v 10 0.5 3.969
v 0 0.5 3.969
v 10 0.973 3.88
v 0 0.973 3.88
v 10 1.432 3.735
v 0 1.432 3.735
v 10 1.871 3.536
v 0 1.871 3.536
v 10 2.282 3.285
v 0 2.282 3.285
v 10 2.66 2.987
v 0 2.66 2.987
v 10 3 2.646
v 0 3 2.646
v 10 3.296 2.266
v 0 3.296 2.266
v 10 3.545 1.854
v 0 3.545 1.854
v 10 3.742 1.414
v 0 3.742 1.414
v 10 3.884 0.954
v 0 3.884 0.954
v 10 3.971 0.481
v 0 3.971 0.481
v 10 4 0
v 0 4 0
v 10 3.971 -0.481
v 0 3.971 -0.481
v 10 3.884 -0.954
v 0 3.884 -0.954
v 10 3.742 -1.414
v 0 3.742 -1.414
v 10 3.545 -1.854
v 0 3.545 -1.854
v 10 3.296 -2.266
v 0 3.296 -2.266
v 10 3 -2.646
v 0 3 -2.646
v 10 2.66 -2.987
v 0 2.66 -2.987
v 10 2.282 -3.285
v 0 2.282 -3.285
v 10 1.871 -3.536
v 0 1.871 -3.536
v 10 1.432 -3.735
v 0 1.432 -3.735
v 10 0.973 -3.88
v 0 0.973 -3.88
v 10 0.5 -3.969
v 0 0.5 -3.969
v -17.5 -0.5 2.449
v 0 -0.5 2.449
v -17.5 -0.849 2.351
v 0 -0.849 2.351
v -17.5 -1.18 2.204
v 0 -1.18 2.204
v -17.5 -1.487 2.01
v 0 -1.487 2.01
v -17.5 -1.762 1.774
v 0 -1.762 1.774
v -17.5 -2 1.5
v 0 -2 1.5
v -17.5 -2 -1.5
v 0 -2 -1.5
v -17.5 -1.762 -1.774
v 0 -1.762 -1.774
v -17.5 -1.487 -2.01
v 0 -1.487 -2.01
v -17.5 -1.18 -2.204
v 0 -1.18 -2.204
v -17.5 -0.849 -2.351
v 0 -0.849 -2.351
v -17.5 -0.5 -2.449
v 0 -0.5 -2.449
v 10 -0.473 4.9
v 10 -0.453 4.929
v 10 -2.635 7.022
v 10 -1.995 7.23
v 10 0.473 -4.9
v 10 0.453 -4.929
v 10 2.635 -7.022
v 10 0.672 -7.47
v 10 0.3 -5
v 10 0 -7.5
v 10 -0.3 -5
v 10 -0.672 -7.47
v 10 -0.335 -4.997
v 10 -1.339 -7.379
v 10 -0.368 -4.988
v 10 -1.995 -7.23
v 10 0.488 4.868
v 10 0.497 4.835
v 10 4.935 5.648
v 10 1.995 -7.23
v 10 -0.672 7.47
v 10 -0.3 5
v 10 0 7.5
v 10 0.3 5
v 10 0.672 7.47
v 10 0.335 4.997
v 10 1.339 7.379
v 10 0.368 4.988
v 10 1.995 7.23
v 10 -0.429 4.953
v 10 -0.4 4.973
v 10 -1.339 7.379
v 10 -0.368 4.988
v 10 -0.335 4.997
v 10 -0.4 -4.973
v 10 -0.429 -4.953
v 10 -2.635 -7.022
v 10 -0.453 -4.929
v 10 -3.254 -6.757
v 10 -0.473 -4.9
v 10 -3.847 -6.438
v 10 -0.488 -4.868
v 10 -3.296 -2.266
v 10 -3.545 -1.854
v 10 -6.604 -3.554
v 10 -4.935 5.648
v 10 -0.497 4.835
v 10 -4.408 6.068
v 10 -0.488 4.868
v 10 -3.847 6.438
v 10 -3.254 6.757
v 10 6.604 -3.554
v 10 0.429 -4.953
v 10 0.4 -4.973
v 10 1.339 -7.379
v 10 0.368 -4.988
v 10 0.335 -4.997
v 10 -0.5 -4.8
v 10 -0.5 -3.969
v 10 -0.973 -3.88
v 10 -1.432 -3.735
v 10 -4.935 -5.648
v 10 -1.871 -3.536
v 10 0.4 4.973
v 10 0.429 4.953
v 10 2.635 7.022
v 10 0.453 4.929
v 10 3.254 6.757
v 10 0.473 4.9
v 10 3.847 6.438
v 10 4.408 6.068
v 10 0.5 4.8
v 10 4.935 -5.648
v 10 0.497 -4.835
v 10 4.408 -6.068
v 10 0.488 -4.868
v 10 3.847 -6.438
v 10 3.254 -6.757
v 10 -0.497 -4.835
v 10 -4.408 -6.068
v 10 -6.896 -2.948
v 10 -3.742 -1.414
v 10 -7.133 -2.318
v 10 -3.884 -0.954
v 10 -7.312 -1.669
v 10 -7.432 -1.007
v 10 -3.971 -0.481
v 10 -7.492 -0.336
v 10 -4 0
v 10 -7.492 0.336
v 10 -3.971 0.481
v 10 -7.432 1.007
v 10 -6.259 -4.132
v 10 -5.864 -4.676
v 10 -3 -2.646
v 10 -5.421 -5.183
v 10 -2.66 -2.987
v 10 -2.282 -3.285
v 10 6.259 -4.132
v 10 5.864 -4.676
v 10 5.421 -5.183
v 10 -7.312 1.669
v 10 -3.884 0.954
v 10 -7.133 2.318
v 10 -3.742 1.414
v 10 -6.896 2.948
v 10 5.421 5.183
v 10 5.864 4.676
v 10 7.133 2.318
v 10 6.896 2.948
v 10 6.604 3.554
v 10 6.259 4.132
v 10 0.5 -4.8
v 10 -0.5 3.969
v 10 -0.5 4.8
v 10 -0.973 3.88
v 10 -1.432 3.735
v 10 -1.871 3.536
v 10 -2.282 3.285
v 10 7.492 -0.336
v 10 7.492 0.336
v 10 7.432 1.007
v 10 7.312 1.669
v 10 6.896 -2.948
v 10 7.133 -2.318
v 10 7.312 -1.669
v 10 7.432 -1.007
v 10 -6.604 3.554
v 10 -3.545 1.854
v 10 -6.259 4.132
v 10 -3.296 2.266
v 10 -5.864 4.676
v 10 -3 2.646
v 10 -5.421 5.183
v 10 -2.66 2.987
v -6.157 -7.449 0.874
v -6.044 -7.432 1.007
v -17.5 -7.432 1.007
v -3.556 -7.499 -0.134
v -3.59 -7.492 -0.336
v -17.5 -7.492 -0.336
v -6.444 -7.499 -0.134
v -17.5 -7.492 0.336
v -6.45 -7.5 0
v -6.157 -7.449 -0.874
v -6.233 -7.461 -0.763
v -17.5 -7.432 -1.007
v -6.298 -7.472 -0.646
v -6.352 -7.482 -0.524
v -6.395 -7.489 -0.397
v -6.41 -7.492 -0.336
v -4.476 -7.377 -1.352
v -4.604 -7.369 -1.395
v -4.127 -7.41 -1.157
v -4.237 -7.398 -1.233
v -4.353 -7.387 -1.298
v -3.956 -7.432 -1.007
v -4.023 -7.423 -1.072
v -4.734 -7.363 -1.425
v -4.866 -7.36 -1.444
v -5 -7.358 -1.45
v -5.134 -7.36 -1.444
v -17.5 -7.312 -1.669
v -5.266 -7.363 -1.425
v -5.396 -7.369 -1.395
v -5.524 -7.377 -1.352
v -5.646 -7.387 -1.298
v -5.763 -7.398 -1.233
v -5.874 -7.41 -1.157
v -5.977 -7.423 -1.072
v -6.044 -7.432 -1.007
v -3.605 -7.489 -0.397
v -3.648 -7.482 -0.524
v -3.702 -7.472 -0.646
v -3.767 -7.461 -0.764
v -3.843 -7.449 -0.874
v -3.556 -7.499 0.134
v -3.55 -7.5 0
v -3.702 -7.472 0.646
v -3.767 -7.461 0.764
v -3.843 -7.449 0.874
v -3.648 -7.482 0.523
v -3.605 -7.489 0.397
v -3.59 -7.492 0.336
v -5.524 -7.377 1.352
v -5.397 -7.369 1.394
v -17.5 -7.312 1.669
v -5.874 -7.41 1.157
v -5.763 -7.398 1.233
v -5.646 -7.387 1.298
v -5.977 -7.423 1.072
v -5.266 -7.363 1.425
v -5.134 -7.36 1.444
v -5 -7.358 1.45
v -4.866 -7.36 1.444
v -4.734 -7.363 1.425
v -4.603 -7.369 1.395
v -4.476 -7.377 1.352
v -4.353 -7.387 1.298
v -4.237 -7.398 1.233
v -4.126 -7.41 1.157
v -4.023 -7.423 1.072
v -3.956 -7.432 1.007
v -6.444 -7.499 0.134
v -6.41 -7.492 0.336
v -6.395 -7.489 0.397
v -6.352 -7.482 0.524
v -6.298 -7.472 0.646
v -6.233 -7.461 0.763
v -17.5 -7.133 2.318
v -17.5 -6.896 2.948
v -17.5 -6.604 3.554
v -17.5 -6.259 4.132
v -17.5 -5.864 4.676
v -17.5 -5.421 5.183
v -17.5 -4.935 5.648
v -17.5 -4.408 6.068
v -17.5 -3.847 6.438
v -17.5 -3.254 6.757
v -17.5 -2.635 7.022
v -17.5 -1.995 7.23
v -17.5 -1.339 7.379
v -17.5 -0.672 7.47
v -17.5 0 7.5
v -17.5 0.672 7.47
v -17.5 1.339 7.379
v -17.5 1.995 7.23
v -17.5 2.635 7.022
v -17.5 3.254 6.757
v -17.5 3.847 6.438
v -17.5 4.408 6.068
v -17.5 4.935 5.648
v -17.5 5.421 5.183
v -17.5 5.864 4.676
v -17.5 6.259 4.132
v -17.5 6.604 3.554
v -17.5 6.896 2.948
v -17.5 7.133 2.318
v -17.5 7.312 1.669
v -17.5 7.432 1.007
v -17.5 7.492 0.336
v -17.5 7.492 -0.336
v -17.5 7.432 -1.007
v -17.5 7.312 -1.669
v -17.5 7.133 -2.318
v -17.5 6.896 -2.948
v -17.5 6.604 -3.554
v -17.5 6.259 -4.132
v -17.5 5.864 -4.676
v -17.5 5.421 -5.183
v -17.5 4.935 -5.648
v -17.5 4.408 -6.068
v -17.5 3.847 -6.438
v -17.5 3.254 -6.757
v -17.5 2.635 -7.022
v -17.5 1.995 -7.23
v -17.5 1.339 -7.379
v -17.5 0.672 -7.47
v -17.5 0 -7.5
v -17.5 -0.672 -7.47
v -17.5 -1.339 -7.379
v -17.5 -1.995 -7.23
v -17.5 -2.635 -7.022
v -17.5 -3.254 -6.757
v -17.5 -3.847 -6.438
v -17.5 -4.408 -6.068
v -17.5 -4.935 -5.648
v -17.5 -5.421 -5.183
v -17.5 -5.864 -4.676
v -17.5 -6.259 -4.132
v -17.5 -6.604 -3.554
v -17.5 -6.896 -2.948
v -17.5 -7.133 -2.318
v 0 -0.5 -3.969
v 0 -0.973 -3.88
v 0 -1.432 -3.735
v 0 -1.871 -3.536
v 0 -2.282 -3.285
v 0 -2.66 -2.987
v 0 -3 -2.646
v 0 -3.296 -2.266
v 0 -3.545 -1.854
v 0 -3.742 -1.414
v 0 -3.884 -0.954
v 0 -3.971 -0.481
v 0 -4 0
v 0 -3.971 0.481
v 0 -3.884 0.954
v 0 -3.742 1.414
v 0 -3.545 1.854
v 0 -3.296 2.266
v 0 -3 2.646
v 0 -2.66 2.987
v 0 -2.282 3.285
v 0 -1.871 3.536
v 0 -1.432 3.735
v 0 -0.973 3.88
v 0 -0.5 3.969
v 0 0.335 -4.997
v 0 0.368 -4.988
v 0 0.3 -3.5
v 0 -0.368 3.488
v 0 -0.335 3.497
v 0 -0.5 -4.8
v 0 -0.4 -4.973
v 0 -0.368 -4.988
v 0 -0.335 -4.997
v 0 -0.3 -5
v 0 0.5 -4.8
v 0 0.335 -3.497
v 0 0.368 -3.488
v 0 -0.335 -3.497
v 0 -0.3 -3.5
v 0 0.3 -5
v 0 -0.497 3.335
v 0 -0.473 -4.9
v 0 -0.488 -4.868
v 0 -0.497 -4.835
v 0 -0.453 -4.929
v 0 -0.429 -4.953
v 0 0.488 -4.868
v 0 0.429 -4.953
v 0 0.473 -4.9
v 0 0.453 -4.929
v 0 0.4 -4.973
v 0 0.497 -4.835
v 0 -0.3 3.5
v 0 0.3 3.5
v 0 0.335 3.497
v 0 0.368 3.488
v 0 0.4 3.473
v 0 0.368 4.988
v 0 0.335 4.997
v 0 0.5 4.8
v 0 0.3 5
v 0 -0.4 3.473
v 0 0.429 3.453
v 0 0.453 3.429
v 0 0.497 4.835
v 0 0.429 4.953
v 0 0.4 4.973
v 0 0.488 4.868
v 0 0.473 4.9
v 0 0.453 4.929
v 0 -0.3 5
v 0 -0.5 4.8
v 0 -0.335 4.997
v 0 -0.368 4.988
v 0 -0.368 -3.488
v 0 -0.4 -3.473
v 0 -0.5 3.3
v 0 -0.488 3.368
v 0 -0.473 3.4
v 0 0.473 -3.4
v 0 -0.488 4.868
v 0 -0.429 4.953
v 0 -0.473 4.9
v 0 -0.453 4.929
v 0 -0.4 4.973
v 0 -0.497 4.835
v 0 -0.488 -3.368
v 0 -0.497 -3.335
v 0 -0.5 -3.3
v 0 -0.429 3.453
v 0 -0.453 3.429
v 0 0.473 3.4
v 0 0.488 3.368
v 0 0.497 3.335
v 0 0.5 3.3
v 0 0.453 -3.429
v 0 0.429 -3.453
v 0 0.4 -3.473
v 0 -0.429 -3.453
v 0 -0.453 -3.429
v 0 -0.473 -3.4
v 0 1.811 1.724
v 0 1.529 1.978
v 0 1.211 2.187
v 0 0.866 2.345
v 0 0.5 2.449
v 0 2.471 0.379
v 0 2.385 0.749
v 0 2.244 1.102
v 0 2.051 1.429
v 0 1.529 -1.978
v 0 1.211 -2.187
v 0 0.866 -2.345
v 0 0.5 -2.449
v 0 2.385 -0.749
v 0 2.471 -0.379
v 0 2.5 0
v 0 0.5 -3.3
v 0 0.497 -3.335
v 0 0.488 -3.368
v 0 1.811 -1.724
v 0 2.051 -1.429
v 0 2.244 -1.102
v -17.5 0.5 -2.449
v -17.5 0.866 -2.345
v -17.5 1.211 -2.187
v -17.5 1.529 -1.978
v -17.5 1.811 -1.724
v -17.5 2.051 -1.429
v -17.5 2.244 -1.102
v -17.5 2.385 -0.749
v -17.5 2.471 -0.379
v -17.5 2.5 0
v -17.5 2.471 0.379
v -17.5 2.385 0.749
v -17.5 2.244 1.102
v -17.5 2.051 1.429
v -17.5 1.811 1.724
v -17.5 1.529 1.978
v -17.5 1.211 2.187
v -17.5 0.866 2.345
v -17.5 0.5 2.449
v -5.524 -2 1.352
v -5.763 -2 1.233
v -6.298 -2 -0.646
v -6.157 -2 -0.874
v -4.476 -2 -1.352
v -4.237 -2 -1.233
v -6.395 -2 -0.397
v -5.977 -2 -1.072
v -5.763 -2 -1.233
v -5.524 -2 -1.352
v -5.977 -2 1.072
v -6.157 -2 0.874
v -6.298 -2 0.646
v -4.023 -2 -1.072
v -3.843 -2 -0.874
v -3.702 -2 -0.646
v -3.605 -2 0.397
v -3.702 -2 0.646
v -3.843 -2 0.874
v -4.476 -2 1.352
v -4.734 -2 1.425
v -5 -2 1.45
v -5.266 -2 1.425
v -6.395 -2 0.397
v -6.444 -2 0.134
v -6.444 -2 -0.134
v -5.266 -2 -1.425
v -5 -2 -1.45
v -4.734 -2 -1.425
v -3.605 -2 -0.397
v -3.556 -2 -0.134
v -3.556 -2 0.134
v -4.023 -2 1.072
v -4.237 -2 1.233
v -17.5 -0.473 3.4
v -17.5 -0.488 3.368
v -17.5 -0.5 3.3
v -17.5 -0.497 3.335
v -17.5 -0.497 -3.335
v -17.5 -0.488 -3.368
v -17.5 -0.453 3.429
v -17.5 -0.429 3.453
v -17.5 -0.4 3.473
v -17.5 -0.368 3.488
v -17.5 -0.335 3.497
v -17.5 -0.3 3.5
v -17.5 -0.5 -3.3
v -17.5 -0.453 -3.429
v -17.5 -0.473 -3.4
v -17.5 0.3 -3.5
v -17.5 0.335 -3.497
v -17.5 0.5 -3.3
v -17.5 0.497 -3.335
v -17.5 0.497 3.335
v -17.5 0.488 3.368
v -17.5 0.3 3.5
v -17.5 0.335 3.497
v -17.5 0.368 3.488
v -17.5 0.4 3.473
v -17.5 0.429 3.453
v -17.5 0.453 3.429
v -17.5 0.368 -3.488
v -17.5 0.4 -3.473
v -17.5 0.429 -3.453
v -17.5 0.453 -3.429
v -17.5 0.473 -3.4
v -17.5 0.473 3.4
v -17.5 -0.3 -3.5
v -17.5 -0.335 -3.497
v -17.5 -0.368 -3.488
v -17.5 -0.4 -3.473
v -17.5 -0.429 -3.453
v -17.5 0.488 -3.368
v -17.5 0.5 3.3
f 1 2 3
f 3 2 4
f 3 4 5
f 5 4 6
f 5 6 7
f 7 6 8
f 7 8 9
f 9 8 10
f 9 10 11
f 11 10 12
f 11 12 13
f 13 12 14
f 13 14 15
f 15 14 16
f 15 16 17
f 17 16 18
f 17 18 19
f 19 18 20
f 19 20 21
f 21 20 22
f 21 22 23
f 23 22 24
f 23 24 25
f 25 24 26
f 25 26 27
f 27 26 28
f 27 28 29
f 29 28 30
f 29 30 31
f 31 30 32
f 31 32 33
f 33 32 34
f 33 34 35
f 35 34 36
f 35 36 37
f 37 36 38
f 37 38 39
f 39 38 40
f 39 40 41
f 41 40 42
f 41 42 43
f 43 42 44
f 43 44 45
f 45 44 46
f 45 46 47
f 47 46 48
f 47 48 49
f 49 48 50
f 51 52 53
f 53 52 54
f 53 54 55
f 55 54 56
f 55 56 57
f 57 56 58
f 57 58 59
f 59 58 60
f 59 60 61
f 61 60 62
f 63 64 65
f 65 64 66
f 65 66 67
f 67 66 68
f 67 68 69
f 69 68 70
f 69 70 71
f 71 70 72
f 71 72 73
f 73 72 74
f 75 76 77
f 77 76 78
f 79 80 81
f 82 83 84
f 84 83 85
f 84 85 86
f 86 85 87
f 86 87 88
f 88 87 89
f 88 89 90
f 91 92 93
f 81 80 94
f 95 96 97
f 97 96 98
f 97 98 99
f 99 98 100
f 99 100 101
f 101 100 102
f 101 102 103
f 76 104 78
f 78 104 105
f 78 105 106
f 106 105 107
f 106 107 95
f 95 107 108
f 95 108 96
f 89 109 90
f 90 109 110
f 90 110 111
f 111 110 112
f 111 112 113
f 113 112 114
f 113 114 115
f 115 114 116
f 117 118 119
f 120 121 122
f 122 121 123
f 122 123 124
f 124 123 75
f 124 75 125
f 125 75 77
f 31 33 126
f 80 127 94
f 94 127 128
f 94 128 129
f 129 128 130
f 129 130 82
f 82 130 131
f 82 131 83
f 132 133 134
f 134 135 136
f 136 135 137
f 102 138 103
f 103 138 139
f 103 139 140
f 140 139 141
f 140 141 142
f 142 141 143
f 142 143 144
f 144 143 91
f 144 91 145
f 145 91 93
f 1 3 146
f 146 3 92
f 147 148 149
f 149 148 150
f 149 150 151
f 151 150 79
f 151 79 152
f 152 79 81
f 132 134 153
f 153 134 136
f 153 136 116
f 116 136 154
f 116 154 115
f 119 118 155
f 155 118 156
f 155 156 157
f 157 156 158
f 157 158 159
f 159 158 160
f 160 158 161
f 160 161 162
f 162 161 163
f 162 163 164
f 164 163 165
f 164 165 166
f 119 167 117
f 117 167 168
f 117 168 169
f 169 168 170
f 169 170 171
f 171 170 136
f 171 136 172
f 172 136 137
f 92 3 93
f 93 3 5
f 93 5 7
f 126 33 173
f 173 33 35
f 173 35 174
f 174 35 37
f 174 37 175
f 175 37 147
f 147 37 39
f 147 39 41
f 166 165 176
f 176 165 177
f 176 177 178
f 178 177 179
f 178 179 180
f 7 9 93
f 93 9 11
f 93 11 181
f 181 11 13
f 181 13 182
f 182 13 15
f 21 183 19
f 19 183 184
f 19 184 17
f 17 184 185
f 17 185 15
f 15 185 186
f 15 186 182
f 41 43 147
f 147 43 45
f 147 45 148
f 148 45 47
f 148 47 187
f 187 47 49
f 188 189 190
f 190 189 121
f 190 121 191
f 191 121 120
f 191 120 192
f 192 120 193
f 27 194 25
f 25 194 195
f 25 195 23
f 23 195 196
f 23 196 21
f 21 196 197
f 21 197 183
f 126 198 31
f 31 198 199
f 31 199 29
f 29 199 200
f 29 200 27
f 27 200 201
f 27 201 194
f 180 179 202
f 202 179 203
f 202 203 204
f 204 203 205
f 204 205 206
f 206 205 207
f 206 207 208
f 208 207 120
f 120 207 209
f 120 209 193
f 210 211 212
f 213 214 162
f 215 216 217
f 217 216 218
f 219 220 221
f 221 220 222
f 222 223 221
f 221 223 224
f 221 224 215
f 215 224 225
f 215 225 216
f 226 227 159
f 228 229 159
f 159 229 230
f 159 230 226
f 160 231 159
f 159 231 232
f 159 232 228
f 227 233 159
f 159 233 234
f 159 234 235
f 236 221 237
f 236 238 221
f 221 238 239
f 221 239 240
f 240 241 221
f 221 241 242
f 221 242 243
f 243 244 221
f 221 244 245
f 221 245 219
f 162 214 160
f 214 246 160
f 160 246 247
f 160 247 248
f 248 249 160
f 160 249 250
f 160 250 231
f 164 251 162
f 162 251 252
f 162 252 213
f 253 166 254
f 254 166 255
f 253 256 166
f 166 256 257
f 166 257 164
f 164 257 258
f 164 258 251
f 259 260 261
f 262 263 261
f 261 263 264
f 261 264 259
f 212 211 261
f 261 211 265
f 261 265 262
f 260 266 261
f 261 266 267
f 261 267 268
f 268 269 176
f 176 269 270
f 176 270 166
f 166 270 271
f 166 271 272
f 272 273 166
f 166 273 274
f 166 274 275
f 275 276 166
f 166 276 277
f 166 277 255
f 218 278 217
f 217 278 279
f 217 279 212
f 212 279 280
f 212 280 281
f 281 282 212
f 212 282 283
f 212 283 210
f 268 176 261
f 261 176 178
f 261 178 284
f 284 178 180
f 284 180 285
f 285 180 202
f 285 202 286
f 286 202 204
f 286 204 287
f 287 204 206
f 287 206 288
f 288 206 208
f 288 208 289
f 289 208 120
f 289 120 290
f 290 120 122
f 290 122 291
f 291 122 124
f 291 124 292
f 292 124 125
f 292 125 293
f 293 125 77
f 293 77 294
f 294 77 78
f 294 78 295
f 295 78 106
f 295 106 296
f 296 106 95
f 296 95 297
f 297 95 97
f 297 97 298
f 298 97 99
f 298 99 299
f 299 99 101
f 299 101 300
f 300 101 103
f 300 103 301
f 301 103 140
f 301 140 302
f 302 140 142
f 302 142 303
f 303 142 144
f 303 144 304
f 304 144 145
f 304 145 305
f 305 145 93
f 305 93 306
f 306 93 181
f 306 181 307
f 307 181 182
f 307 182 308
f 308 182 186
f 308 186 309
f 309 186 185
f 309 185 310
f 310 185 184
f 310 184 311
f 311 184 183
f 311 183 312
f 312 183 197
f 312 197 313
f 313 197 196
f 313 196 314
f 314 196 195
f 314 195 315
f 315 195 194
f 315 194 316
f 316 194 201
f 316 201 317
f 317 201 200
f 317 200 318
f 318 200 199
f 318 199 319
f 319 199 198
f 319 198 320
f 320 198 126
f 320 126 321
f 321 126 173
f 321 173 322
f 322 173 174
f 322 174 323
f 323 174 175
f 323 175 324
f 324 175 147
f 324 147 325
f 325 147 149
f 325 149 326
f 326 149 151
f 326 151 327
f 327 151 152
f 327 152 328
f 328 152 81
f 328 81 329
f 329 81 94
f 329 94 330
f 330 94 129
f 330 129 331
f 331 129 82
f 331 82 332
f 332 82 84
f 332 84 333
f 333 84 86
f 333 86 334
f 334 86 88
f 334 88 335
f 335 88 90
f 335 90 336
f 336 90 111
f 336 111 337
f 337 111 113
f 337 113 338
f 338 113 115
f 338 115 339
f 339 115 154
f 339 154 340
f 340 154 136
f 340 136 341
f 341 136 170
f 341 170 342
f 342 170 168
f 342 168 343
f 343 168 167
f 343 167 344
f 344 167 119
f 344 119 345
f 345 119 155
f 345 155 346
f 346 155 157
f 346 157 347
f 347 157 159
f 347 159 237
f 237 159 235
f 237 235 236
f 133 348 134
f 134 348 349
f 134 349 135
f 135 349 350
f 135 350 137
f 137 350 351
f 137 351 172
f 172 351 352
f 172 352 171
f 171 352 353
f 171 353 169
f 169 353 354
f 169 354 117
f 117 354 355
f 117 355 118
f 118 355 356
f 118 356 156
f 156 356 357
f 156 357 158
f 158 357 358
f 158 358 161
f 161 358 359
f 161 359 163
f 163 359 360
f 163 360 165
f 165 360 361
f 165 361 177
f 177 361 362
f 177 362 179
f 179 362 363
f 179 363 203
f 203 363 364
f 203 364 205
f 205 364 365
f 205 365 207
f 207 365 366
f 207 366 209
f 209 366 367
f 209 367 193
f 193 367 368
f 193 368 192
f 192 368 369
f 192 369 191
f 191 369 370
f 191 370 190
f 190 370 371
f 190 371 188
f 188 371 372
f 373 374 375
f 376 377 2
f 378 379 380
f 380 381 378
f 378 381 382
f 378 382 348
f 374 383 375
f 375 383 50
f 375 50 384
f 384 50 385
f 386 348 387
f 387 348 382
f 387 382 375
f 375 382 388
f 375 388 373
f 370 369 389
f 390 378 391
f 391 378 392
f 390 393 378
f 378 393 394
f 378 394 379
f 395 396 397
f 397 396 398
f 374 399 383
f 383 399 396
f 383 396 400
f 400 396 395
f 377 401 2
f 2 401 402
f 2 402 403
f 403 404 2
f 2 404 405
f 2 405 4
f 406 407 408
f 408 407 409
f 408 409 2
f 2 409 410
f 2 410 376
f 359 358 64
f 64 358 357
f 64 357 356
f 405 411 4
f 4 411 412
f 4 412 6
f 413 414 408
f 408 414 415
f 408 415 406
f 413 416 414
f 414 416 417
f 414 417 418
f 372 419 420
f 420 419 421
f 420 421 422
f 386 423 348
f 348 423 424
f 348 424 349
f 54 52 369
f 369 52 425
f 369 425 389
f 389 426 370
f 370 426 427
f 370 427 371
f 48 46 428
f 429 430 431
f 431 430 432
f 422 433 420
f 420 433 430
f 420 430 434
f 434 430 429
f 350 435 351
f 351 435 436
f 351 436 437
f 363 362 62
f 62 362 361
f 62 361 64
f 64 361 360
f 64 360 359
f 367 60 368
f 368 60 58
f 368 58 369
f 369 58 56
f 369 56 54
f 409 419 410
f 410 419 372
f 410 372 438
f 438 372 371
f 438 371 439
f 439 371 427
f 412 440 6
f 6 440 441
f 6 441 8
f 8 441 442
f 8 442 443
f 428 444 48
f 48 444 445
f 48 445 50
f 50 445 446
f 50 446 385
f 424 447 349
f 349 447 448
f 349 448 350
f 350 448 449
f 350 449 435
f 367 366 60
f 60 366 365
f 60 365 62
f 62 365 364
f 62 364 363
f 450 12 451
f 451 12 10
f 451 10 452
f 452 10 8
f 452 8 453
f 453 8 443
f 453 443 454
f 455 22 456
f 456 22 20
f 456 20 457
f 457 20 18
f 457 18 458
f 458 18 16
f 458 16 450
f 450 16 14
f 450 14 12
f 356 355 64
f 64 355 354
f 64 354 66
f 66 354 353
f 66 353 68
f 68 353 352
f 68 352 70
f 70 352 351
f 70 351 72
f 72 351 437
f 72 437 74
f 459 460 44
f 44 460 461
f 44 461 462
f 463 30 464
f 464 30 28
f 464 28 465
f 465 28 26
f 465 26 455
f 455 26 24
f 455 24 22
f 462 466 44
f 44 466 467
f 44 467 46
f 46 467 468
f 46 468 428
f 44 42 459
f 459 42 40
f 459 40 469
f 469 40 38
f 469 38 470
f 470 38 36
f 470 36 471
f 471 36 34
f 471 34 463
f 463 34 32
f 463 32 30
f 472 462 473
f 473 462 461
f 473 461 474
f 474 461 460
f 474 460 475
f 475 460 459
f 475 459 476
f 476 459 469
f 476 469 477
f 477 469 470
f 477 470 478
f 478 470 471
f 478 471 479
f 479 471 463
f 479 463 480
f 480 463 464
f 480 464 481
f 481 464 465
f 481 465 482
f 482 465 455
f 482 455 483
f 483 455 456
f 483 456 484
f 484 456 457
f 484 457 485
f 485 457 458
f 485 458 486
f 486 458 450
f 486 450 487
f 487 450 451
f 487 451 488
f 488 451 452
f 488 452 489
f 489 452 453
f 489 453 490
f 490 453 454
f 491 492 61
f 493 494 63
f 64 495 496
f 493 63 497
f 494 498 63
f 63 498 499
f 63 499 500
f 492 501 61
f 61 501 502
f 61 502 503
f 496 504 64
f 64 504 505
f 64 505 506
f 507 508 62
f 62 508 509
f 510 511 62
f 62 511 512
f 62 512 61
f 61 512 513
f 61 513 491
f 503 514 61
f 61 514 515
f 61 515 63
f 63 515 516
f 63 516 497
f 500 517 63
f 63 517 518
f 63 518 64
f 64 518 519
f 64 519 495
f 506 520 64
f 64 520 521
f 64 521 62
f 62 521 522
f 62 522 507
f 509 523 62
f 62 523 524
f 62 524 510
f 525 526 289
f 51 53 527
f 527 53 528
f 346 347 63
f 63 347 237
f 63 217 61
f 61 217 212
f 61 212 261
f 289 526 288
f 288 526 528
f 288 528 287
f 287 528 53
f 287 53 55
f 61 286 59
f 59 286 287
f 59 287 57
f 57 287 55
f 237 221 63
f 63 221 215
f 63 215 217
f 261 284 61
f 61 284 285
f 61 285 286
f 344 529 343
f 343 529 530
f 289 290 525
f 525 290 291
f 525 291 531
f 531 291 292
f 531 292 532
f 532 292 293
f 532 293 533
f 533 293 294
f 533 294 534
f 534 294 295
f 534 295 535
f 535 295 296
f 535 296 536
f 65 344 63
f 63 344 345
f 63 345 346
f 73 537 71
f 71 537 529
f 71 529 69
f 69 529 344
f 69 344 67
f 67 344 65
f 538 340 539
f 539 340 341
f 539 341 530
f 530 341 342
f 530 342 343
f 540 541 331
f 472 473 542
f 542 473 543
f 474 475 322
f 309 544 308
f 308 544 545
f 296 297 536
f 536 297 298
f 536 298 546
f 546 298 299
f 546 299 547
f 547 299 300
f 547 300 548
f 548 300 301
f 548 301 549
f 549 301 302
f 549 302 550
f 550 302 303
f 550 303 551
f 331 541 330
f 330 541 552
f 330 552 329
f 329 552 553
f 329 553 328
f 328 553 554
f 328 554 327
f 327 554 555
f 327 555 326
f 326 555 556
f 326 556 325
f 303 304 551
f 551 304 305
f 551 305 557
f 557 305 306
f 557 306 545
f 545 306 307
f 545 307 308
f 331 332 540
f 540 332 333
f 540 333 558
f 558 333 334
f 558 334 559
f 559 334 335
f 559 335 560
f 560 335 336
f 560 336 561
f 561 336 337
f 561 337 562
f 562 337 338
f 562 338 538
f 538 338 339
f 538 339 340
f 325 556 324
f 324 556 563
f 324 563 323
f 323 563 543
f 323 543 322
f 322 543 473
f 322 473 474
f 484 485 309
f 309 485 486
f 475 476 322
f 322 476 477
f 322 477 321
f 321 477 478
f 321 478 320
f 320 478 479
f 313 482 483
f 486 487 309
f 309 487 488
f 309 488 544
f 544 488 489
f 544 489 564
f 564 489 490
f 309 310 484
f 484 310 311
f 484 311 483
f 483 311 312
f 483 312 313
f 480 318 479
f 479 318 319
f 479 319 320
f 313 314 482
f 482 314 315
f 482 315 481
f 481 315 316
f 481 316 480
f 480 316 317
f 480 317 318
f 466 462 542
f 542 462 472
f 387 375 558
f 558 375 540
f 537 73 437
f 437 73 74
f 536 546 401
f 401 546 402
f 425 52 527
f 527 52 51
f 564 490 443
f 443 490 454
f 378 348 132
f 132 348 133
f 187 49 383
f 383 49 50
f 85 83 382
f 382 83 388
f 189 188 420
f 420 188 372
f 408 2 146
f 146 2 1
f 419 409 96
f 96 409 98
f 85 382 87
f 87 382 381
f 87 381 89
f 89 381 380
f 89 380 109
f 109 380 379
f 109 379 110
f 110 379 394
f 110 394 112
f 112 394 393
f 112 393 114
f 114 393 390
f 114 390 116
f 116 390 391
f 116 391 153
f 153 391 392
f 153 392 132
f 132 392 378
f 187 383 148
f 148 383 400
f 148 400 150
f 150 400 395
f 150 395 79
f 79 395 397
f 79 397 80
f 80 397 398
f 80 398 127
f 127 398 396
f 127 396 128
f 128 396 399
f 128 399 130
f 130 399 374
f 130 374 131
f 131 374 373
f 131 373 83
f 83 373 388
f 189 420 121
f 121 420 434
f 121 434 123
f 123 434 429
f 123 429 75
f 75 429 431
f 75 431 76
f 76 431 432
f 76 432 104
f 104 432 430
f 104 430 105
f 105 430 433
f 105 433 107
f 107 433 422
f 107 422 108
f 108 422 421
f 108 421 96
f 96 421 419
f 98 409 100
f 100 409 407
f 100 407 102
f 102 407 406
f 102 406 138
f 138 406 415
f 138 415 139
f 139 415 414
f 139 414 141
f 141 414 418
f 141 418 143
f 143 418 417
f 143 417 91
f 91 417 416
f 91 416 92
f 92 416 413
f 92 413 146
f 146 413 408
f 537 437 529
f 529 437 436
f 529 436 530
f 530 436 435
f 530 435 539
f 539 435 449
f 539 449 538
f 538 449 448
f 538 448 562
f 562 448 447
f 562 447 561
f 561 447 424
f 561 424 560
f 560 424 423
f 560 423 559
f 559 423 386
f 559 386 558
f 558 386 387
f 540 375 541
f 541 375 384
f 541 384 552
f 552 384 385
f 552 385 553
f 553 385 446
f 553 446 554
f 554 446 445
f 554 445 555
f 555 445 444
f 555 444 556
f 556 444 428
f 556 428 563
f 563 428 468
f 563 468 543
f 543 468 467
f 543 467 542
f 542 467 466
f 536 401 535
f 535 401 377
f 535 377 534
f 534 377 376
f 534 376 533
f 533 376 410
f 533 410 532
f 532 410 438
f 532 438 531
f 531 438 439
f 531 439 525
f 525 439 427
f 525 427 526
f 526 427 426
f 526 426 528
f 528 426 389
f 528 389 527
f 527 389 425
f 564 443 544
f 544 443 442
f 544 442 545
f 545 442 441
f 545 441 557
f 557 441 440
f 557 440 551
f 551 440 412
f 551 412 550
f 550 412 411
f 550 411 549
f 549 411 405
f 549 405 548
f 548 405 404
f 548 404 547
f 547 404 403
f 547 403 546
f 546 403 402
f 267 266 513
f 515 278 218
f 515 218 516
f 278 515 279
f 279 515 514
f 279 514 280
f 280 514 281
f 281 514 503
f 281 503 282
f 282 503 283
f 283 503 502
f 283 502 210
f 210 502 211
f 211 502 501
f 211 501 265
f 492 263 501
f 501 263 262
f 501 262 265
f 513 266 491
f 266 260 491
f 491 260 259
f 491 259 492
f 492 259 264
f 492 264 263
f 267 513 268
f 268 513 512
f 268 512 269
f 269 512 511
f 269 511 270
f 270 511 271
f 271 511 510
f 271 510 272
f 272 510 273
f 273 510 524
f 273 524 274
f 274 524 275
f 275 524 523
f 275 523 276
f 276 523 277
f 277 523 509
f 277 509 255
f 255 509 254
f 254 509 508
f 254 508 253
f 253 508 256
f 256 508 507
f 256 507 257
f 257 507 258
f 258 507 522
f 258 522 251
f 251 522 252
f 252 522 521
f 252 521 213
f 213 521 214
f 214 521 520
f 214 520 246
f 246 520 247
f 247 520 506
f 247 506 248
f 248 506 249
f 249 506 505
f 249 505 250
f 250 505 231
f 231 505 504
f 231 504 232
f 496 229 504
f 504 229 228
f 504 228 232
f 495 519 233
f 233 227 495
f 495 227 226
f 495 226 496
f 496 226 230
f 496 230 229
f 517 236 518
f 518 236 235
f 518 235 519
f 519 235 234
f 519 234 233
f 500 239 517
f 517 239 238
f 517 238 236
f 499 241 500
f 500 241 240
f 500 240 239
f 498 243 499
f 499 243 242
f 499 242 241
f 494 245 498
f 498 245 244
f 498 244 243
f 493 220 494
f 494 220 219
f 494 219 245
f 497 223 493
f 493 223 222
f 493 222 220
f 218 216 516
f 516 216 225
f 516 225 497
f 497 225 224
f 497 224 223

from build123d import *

# Parameters (mm, degrees)
SKETCH1_R            = 7.5
SKETCH1_R_2          = 4
SCREWSIDE_DEPTH      = 10
MOTORSIDE_START      = 17.5
SKETCH4_R            = 7.5
MOTORSIDE_DEPTH      = 17.5
SKETCH6_W            = 7
SKETCH6_H            = 1
ESCAPE_HOLES_DEPTH   = 30.474565306
SKETCH7_W            = 10
SKETCH7_H            = 1
ESCAPE_HOLES_2_DEPTH = 10
FILLET1_R            = 0.2
CUT_EXTRUDE3_DEPTH   = 22.277922831


with BuildPart() as part:
    # Sketch1 → ScrewSide (new body)
    with BuildSketch(Plane(origin=(0, 0, 0), x_dir=(0, 0, -1), z_dir=(1, 0, 0))):
        Circle(SKETCH1_R)
        Circle(SKETCH1_R_2, mode=Mode.SUBTRACT)
    extrude(amount=SCREWSIDE_DEPTH)

    # Sketch4 → MotorSide (add)
    with BuildSketch(Plane.ZY.offset(MOTORSIDE_START)):
        Circle(SKETCH4_R)
        with BuildLine():
            Line((-1.5, -2), (1.5, -2))
            ThreePointArc((1.5, -2), (0, 2.5), (-1.5, -2))
        make_face(mode=Mode.SUBTRACT)
    extrude(amount=-MOTORSIDE_DEPTH)

    # Sketch6 → Escape Holes (cut, through all)
    with BuildSketch(Plane.ZY.offset(17.5)):
        Rectangle(SKETCH6_W, SKETCH6_H)
    extrude(amount=-ESCAPE_HOLES_DEPTH, mode=Mode.SUBTRACT)

    # Sketch7 → Escape Holes 2 (cut)
    with BuildSketch(Plane(origin=(10, 0, 0), x_dir=(0, 0, -1), z_dir=(1, 0, 0))):
        Rectangle(SKETCH7_W, SKETCH7_H)
    extrude(amount=-ESCAPE_HOLES_2_DEPTH, mode=Mode.SUBTRACT)

    # Fillet1
    fillet1_edges = [part.edges().sort_by_distance(p)[0] for p in [
        (-8.75, 0.5, 3.5),
        (-8.75, -0.5, 3.5),
        (-8.75, -0.5, -3.5),
        (-8.75, 0.5, -3.5),
        (5, 0.5, 5),
        (5, -0.5, 5),
        (5, -0.5, -5),
        (5, 0.5, -5),
    ]]
    fillet(fillet1_edges, radius=FILLET1_R)

    # Sketch8 → Cut-Extrude3 (cut, through all)
    with BuildSketch(Plane(origin=(0, -2, 0), x_dir=(1, 0, 0), z_dir=(0, 1, 0))):
        with BuildLine():
            ThreePointArc((-6.45, 0), (-5, -1.45), (-3.55, 0))
            Line((-3.55, 0), (-6.45, 0))
        make_face()
        with BuildLine():
            Line((-6.45, 0), (-3.55, 0))
            ThreePointArc((-3.55, 0), (-5, 1.45), (-6.45, 0))
        make_face()
    extrude(amount=-CUT_EXTRUDE3_DEPTH, mode=Mode.SUBTRACT)


solid = part.part
